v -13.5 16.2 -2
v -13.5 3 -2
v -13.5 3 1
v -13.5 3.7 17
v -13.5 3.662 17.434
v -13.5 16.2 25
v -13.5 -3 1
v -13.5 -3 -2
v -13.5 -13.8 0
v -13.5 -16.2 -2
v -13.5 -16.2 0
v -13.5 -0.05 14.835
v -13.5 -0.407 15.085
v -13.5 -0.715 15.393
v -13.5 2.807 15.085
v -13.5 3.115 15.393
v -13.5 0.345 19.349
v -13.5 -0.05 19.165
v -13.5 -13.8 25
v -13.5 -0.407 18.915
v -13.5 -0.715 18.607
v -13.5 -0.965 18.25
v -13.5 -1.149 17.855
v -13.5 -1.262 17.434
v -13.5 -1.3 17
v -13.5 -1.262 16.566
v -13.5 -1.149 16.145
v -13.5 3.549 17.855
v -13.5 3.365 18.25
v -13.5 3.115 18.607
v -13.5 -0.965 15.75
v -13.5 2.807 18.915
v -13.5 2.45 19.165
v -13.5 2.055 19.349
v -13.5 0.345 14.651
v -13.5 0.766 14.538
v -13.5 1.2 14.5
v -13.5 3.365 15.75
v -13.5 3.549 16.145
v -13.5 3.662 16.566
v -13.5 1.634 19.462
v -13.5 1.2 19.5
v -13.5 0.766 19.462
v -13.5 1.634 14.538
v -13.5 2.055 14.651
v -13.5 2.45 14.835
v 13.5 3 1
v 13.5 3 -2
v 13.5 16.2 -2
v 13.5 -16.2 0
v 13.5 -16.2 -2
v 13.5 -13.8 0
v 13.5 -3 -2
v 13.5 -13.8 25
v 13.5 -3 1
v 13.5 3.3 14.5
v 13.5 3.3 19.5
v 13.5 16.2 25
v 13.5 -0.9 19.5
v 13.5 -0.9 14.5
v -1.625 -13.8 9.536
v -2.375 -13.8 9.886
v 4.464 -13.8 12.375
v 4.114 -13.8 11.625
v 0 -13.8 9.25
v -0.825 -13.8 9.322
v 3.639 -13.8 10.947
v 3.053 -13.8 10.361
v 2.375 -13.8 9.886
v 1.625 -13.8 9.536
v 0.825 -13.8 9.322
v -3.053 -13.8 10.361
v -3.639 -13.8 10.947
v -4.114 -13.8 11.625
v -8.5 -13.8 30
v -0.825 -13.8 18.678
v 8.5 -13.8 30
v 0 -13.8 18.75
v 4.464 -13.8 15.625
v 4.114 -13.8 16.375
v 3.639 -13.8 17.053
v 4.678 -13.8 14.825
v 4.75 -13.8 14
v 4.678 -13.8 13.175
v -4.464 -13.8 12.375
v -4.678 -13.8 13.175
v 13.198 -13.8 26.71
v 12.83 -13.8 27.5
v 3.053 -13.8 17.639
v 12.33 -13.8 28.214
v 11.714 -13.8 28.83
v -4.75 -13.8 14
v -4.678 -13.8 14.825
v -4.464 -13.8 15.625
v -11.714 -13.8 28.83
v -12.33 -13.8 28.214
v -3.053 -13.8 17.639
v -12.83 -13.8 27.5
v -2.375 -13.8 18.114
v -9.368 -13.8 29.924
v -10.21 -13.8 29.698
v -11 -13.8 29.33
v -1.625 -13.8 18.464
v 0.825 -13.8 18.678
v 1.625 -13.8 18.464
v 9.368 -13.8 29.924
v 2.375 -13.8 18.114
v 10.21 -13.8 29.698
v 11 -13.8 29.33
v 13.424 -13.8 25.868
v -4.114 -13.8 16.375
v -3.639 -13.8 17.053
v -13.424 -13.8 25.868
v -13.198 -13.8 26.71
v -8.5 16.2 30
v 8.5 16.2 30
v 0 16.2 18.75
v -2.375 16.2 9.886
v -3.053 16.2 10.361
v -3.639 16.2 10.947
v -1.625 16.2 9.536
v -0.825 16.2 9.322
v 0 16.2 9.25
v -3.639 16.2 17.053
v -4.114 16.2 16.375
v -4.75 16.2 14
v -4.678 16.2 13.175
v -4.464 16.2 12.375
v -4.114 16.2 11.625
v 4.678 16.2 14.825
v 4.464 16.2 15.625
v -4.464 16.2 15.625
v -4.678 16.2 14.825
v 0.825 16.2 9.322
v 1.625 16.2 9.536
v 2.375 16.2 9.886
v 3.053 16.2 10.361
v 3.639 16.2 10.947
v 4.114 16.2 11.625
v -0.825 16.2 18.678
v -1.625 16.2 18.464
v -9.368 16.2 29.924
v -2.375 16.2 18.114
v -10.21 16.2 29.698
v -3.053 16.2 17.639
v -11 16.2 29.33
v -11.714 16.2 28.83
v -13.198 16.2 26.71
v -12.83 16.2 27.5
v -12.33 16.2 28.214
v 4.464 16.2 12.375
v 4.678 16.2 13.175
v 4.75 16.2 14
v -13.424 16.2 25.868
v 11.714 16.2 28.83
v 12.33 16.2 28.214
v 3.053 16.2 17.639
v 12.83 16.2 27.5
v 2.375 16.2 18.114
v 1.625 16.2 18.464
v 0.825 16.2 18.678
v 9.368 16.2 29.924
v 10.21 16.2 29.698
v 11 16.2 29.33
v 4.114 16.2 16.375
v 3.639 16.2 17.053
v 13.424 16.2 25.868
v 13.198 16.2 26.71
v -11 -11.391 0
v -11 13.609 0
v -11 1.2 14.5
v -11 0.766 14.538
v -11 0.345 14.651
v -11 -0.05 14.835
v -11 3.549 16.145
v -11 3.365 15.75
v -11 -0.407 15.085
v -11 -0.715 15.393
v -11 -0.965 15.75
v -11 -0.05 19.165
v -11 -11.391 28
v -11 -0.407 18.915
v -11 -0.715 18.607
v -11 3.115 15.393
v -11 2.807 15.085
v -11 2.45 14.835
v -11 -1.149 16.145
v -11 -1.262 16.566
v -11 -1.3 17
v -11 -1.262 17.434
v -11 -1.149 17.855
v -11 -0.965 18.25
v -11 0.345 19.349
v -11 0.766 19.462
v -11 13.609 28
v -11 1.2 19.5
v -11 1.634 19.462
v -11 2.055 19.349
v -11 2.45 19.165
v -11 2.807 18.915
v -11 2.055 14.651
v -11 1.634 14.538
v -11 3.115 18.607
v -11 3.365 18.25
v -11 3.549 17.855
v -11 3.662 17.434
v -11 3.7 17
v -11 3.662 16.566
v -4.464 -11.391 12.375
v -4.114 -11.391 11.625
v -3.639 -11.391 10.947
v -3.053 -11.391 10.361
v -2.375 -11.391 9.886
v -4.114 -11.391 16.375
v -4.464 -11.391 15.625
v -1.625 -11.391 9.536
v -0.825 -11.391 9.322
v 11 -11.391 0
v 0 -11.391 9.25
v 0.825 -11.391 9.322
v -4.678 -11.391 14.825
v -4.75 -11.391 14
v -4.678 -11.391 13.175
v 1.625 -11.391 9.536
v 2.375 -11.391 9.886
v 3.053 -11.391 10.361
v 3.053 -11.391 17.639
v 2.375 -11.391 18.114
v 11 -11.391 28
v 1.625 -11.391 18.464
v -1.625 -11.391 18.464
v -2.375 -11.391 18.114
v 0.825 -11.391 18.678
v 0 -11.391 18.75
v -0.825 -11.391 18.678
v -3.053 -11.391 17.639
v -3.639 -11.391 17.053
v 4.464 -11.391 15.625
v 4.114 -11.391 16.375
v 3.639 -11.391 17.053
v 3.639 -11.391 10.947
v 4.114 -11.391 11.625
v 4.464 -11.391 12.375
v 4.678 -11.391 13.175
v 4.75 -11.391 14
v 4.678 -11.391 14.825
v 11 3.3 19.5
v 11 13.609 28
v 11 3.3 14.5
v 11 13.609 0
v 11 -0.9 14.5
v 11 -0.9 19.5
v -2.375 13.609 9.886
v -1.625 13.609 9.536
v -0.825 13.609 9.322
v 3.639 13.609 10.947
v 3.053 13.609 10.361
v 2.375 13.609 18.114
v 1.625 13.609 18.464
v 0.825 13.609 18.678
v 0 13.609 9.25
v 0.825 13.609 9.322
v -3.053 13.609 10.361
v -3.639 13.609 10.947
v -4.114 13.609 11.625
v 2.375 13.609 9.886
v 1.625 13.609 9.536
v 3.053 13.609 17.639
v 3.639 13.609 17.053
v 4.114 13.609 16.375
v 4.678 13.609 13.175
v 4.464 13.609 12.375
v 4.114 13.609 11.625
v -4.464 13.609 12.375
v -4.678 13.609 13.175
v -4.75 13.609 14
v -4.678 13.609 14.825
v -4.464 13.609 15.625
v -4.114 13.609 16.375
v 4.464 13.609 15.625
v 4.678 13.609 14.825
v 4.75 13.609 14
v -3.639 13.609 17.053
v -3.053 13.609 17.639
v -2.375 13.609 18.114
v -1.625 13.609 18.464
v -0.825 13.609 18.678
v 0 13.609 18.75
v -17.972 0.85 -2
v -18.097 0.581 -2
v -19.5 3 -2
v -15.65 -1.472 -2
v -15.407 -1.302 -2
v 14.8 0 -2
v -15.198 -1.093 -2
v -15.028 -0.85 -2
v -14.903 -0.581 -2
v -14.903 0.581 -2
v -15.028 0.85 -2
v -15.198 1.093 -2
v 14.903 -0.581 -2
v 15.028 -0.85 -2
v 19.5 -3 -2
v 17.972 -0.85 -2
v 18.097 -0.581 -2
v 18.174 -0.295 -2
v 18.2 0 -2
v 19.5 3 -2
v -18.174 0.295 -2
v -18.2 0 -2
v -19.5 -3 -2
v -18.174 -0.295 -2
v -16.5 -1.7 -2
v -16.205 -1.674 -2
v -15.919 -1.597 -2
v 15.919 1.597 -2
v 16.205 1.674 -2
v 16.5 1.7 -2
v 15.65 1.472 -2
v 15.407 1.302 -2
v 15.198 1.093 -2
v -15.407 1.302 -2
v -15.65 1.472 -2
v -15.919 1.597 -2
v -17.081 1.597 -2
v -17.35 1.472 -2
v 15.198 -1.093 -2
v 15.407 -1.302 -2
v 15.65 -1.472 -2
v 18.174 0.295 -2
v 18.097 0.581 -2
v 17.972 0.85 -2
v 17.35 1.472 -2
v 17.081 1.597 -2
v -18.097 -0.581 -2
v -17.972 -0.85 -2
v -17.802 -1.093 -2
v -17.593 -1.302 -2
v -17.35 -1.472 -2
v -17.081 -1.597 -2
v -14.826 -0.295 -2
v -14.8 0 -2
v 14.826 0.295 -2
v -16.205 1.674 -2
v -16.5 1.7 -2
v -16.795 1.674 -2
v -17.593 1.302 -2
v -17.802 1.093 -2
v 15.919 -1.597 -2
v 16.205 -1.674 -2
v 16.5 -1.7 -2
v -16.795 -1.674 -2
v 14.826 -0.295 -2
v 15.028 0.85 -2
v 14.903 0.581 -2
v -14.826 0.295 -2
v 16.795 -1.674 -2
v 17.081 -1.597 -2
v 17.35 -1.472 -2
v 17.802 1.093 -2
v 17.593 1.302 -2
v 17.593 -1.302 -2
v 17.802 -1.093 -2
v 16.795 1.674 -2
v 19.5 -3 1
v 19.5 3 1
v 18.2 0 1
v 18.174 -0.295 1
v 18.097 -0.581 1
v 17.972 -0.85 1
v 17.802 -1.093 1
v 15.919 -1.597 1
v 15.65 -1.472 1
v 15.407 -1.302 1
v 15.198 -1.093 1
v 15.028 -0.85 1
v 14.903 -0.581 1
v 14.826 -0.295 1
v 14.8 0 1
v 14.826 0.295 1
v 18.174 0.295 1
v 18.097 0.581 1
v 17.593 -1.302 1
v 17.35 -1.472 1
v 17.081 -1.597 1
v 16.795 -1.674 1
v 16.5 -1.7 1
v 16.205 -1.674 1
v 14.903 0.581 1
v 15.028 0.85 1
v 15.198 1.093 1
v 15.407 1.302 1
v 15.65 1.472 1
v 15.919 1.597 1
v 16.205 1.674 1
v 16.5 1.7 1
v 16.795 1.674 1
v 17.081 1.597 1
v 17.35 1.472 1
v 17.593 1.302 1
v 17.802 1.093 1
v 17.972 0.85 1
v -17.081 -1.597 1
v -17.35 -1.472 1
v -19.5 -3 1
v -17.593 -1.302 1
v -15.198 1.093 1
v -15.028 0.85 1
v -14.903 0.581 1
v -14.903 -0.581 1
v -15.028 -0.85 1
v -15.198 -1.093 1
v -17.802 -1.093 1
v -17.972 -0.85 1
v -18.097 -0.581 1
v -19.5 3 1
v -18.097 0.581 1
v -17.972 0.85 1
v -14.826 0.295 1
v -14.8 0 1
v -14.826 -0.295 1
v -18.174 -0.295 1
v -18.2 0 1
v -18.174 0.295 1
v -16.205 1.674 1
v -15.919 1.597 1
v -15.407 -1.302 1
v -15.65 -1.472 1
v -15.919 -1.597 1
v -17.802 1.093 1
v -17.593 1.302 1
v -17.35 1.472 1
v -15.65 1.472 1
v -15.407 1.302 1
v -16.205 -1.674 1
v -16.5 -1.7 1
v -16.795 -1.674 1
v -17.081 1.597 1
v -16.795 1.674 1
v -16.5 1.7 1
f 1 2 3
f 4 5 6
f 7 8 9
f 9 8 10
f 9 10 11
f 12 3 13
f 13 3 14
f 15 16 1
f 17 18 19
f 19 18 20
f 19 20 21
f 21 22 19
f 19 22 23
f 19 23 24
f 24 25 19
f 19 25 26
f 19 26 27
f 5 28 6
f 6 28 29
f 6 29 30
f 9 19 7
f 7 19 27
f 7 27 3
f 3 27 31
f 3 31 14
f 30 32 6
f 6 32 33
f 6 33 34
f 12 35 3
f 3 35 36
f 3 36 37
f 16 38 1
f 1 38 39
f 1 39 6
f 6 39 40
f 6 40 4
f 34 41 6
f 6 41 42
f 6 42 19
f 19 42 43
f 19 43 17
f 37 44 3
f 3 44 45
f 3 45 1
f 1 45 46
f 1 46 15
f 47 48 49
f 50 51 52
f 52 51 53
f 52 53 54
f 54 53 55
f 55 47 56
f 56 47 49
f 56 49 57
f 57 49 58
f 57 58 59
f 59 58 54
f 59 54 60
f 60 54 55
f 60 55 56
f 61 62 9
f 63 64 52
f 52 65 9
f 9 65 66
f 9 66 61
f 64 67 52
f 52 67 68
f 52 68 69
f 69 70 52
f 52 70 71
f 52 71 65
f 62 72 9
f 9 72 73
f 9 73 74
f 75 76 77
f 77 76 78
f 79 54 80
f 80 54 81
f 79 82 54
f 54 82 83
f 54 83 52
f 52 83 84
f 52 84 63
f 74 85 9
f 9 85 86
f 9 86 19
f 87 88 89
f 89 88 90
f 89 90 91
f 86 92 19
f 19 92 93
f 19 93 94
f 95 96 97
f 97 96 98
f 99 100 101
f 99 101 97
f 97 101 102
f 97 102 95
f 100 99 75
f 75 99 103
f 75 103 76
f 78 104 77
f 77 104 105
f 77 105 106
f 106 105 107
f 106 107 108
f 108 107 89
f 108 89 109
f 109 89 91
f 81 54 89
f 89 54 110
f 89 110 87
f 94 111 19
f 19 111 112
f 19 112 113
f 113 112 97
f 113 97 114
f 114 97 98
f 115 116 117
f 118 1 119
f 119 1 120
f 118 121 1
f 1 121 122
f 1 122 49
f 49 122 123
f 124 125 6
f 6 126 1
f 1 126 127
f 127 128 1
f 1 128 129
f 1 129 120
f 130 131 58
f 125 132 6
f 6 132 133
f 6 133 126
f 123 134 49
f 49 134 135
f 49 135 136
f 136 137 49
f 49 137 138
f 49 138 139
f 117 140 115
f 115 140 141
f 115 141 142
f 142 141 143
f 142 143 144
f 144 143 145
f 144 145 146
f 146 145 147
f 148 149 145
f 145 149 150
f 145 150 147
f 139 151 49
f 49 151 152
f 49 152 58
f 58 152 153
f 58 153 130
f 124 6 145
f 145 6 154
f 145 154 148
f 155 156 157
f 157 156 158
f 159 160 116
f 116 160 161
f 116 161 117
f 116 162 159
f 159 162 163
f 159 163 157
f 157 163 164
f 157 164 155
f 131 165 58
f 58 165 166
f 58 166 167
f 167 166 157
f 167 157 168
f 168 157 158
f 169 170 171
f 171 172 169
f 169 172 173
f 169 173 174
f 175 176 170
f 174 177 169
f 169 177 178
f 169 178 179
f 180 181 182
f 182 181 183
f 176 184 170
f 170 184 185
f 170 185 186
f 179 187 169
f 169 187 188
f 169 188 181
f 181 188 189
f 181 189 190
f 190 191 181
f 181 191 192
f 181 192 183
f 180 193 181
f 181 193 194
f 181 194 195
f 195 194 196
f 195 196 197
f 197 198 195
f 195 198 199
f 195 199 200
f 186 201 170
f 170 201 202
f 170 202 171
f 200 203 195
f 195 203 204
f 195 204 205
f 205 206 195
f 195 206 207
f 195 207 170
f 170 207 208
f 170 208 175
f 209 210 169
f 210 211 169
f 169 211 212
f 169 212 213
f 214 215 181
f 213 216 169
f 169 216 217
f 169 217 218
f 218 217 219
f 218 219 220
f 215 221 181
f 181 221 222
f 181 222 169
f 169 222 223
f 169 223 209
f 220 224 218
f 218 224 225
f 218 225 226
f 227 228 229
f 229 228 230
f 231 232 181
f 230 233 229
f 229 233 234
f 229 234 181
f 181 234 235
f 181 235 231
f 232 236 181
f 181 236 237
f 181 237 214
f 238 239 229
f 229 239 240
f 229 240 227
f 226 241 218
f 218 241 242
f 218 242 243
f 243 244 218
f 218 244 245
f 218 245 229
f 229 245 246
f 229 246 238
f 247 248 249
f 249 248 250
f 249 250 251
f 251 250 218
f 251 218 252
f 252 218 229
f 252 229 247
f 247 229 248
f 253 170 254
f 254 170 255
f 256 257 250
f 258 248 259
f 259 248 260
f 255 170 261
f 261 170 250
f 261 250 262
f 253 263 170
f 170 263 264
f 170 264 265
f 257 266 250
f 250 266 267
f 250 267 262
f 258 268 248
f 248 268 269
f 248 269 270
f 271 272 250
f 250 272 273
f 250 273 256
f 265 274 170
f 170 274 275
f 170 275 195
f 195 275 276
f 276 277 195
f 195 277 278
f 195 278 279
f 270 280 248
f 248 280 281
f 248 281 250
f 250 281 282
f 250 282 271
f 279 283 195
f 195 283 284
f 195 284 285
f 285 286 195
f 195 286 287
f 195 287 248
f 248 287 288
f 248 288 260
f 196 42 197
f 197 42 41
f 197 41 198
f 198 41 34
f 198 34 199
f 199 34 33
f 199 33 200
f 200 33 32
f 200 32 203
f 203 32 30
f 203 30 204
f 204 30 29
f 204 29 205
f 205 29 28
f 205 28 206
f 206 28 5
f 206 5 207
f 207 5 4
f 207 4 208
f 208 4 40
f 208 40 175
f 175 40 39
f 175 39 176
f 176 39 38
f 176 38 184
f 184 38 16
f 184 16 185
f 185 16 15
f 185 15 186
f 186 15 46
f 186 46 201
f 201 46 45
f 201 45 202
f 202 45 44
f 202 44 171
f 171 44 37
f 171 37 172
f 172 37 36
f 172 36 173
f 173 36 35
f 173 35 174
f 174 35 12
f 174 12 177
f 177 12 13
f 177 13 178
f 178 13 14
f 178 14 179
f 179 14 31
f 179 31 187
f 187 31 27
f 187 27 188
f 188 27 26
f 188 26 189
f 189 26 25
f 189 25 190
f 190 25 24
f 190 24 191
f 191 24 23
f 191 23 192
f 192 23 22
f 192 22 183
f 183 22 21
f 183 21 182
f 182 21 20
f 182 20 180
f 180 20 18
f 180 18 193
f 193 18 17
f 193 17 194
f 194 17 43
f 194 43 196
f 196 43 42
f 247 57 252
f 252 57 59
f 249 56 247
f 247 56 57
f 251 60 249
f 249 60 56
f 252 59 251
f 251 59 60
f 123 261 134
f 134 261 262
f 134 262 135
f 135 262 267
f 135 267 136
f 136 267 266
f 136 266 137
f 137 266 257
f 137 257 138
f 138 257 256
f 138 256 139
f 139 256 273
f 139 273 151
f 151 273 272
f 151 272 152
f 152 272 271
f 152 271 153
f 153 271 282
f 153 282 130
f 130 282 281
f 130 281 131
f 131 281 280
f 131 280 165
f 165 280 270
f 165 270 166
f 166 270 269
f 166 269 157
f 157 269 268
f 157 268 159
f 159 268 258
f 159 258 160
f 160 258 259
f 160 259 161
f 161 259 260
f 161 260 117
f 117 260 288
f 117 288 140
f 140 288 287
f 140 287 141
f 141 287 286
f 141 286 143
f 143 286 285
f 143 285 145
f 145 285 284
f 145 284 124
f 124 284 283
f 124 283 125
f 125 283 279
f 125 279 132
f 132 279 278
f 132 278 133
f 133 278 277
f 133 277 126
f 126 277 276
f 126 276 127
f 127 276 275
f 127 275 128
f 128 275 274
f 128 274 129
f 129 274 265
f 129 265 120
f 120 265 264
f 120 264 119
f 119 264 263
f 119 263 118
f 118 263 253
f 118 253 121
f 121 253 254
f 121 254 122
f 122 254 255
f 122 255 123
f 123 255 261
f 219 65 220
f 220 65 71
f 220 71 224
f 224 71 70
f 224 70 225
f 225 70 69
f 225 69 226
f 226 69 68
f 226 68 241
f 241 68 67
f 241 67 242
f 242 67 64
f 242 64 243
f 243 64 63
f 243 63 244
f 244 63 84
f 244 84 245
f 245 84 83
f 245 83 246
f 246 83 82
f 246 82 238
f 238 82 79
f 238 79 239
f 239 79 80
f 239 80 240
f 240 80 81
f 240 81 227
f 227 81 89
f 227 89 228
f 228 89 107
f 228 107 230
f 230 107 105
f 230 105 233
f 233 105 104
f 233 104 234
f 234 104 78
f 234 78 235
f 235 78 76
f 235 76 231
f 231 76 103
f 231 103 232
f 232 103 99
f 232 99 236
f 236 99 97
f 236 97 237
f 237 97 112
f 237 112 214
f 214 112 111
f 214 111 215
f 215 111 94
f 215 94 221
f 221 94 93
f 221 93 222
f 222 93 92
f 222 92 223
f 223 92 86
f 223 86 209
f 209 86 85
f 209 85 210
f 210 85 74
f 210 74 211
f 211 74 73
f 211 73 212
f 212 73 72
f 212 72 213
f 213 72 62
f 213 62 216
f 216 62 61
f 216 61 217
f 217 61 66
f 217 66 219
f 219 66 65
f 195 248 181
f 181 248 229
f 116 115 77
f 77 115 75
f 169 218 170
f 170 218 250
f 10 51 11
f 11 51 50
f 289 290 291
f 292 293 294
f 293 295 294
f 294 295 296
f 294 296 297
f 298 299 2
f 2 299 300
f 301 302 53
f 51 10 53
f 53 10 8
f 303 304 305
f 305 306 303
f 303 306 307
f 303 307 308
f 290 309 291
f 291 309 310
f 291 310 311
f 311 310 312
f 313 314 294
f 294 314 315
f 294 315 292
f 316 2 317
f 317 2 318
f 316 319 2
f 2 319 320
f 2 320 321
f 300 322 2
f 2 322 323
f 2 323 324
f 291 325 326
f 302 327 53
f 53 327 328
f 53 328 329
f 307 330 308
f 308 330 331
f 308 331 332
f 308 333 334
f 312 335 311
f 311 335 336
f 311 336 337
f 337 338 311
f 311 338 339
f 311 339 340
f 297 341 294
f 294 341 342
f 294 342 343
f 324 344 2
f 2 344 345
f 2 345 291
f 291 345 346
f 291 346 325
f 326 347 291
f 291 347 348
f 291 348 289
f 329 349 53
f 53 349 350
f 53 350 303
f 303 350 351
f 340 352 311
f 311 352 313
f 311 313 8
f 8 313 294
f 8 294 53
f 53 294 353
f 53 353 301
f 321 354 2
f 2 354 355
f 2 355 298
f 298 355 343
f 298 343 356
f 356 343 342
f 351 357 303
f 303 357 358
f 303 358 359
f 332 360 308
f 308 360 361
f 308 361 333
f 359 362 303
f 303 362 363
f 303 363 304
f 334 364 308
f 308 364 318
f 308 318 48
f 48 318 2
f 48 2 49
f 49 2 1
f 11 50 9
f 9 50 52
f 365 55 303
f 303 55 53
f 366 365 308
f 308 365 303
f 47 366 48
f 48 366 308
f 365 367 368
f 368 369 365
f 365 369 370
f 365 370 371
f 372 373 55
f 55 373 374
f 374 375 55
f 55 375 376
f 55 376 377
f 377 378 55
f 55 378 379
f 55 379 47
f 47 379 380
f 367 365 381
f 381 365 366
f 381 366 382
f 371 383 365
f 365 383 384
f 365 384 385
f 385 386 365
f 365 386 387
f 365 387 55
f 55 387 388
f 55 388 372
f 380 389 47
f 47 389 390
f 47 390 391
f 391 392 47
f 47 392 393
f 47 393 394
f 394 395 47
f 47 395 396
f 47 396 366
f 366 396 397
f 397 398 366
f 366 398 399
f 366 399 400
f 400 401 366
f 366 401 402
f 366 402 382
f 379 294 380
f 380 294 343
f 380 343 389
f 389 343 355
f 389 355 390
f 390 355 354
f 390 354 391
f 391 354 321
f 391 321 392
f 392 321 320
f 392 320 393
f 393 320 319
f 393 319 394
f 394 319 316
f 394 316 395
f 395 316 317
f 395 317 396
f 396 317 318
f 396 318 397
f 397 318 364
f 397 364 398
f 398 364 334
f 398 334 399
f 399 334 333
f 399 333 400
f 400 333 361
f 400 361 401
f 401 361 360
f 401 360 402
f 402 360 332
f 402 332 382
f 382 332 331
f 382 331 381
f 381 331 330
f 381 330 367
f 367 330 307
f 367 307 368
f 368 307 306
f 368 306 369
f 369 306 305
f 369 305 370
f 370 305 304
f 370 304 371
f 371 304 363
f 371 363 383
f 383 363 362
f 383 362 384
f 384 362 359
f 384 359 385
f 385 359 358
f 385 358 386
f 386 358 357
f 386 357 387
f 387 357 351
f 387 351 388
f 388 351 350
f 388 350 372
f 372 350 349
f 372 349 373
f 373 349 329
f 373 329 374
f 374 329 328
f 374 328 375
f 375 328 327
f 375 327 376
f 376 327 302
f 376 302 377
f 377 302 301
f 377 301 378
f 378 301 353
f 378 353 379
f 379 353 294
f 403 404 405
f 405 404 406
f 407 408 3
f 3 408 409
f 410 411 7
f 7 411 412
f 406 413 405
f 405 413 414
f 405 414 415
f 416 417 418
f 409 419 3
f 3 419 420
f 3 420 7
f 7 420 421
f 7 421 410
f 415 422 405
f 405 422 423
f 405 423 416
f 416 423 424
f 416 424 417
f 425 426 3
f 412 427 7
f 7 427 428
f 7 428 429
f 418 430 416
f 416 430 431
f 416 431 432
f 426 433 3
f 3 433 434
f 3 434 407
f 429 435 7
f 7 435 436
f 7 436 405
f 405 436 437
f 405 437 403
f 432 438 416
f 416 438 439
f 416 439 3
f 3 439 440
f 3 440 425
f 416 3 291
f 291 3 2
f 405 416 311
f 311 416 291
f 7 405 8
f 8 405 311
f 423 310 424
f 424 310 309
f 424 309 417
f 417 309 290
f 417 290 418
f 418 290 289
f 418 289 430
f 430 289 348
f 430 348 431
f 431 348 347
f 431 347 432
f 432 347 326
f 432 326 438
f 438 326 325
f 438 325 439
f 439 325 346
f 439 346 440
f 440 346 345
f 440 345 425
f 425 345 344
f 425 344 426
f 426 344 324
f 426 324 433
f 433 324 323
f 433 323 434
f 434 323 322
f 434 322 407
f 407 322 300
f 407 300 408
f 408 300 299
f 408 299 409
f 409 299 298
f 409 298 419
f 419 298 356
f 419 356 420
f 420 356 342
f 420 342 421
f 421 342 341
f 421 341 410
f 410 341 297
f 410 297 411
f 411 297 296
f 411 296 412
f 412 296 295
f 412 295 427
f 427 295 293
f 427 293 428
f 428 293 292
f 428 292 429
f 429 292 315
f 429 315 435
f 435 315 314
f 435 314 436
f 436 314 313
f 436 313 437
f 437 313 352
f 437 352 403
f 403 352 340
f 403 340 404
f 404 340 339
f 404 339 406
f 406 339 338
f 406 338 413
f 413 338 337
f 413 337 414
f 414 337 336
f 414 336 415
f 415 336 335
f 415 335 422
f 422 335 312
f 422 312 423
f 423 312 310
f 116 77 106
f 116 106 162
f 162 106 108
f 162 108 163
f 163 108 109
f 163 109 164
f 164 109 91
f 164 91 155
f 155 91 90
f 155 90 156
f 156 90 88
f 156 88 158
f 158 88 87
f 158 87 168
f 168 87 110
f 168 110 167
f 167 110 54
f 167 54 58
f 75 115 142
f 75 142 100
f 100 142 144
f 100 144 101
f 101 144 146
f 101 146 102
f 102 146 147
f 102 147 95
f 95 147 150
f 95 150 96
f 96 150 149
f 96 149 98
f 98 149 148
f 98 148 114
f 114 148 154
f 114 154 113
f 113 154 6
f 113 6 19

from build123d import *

# Parameters (mm, degrees)
SKETCH1_W           = 27
SKETCH1_H           = 30
SKETCH1_W_2         = 22
SKETCH1_H_2         = 25
BOSS_EXTRUDE1_DEPTH = 28
SKETCH2_R           = 2.5
CUT_EXTRUDE1_DEPTH  = 14
SKETCH3_W           = 5
SKETCH3_H           = 4.2
CUT_EXTRUDE2_DEPTH  = 14
SKETCH4_R           = 4.75
CUT_EXTRUDE3_DEPTH  = 58
SKETCH5_W           = 27
SKETCH5_H           = 30
BOSS_EXTRUDE2_DEPTH = 2
SKETCH6_W           = 27
SKETCH6_H           = 32.4
BOSS_EXTRUDE3_DEPTH = 2
SKETCH7_R           = 1.7
BOSS_EXTRUDE4_DEPTH = 3
FILLET11_R          = 5


with BuildPart() as part:
    # Sketch1 → Boss-Extrude1 (new body)
    with BuildSketch(Plane.XY):
        with Locations((0, 1.2)):
            Rectangle(SKETCH1_W, SKETCH1_H)
        with Locations((0, 1.108503026)):
            Rectangle(SKETCH1_W_2, SKETCH1_H_2, mode=Mode.SUBTRACT)
    extrude(amount=BOSS_EXTRUDE1_DEPTH)

    # Sketch2 → Cut-Extrude1 (cut, symmetric)
    with BuildSketch(Plane.ZY.offset(13.5)):
        with Locations(Location((17, 1.2, 0), (0, 0, 180))):
            Circle(SKETCH2_R)
    extrude(amount=CUT_EXTRUDE1_DEPTH, both=True, mode=Mode.SUBTRACT)

    # Sketch3 → Cut-Extrude2 (cut, symmetric)
    with BuildSketch(Plane(origin=(13.5, 0, 0), x_dir=(0, 0, -1), z_dir=(1, 0, 0))):
        with Locations((-17, 1.2)):
            Rectangle(SKETCH3_W, SKETCH3_H)
    extrude(amount=CUT_EXTRUDE2_DEPTH, both=True, mode=Mode.SUBTRACT)

    # Sketch4 → Cut-Extrude3 (cut)
    with BuildSketch(Plane.XZ.offset(13.8)):
        with Locations(Location((0, 14, 0), (0, 0, 270))):
            Circle(SKETCH4_R)
    extrude(amount=-CUT_EXTRUDE3_DEPTH, mode=Mode.SUBTRACT)

    # Sketch5 → Boss-Extrude2 (add)
    with BuildSketch(Plane.XY.offset(28)):
        with Locations((0, 1.2)):
            Rectangle(SKETCH5_W, SKETCH5_H)
    extrude(amount=BOSS_EXTRUDE2_DEPTH)

    # Sketch6 → Boss-Extrude3 (add)
    with BuildSketch(Plane(origin=(0, 0, 0), x_dir=(-1, 0, 0), z_dir=(0, 0, -1))):
        Rectangle(SKETCH6_W, SKETCH6_H)
    extrude(amount=BOSS_EXTRUDE3_DEPTH)

    # Sketch7 → Boss-Extrude4 (add)
    with BuildSketch(Plane(origin=(0, 0, -2), x_dir=(-1, 0, 0), z_dir=(0, 0, -1))):
        Polygon((-13.5, 0), (-13.5, 3), (-19.5, 3), (-19.5, -3), (-13.5, -3), align=None)
        with Locations((-16.5, 0)):
            Circle(SKETCH7_R, mode=Mode.SUBTRACT)
    boss_extrude4 = extrude(amount=-BOSS_EXTRUDE4_DEPTH)

    # Mirror2: Boss-Extrude4 across plane
    add(boss_extrude4.mirror(Plane(origin=(0, 0, 0), x_dir=(0, 0, 1), z_dir=(1, 0, 0))))

    # Fillet11
    fillet11_edges = [part.edges().sort_by_distance(p)[0] for p in [
        (-13.5, 1.2, 30),
        (13.5, 1.2, 30),
    ]]
    fillet(fillet11_edges, radius=FILLET11_R)

    # Mirror1: Boss-Extrude4 across plane
    add(boss_extrude4.mirror(Plane(origin=(0, 0, 0), x_dir=(0, 0, 1), z_dir=(1, 0, 0))))


solid = part.part
